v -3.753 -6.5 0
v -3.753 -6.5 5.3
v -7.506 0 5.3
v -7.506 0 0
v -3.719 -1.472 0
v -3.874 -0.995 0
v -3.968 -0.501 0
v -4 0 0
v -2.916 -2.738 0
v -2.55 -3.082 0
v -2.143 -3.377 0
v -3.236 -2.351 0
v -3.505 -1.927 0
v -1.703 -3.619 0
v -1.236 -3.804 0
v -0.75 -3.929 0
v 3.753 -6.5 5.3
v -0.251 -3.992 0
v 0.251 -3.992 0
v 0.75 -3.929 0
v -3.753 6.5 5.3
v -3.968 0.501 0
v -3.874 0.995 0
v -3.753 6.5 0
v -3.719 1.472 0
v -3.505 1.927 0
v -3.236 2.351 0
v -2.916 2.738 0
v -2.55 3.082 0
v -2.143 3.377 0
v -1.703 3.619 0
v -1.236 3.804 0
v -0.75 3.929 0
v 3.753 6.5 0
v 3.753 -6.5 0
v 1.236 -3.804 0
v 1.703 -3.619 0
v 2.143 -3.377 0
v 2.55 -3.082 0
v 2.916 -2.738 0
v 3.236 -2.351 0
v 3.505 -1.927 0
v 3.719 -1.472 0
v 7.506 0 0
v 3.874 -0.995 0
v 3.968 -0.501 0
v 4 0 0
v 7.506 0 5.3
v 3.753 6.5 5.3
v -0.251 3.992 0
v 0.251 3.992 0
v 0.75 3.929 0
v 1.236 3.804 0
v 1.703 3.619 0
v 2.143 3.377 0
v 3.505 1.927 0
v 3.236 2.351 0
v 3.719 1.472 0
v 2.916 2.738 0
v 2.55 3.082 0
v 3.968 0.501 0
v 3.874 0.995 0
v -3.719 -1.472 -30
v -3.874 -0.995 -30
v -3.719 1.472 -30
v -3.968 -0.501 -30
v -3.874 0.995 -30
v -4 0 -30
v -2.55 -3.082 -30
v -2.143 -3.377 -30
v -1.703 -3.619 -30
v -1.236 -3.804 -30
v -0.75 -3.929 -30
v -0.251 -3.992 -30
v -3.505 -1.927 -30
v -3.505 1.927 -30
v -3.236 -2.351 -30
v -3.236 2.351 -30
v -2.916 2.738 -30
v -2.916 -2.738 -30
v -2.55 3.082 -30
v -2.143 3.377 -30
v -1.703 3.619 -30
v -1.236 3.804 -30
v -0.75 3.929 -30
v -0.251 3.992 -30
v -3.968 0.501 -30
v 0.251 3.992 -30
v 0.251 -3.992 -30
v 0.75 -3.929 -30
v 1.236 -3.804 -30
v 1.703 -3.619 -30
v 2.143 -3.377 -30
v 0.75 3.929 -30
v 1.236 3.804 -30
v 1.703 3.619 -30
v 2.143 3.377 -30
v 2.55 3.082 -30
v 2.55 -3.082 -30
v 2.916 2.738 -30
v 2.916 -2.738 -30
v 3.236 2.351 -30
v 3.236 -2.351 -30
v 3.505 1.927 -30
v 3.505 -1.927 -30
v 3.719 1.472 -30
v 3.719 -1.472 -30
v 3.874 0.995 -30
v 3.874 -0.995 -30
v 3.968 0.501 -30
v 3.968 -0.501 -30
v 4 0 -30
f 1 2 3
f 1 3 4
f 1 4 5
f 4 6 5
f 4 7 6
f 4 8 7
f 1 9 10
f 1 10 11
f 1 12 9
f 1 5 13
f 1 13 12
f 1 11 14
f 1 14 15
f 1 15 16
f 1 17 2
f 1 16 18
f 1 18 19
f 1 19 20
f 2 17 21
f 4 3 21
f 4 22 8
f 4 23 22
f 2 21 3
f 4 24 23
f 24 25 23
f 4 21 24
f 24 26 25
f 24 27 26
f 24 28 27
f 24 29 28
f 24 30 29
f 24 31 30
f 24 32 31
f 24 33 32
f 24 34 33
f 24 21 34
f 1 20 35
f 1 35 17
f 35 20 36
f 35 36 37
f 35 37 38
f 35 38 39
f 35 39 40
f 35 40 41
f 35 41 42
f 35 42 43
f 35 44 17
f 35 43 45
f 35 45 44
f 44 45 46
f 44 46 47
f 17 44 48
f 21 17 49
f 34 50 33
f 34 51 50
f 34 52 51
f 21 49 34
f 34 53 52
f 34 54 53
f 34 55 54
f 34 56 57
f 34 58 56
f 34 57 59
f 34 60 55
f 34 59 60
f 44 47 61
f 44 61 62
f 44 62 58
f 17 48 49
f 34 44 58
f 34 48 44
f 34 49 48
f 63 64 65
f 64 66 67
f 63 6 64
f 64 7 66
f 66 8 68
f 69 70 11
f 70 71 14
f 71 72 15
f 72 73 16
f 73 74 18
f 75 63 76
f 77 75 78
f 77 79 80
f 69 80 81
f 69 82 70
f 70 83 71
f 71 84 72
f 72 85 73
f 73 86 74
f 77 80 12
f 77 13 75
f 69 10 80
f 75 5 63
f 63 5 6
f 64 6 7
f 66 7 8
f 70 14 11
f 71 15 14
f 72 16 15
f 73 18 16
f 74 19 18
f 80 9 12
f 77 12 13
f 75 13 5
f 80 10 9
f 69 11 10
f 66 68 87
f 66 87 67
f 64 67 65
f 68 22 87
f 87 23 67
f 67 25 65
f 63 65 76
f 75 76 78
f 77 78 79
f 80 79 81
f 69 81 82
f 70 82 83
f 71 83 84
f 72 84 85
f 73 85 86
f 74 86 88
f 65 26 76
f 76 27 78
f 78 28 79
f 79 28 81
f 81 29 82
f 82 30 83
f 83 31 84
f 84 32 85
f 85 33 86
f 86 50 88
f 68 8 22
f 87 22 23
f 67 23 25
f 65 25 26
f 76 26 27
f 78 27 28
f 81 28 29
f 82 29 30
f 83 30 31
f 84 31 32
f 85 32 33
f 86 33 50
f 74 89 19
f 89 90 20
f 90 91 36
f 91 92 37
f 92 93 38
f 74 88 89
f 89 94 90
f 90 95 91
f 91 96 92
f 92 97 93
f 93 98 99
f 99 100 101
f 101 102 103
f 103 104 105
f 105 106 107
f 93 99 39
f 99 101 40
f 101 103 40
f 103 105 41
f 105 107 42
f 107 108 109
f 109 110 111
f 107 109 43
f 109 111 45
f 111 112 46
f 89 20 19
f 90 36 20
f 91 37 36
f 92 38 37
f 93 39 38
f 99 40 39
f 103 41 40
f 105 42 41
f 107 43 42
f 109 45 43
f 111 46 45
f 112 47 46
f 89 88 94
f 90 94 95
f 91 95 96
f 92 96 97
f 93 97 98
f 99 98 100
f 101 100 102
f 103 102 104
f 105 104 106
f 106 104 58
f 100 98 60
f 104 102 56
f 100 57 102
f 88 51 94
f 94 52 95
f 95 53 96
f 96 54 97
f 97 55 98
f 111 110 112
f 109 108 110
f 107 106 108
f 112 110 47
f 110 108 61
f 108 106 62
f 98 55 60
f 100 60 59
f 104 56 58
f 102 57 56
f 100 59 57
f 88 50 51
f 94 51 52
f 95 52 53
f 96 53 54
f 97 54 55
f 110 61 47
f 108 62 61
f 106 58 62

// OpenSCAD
// M8 Hex Bolt (simplified)

// Dimensions
head_af = 13;      // Across-flats
head_height = 5.3;
shank_dia = 8;
shank_len = 30;

// Calculate radius of circumscribed circle for hexagon
// r = (across-flats / 2) / cos(30°) = (across-flats / 2) / (sqrt(3)/2) = across-flats / sqrt(3)
hex_radius = head_af / sqrt(3);

union() {
    // Hexagonal head
    cylinder(r = hex_radius, h = head_height, $fn = 6);
    
    // Shank
    translate([0, 0, -shank_len])
        cylinder(d = shank_dia, h = shank_len, $fn = 50);
}
